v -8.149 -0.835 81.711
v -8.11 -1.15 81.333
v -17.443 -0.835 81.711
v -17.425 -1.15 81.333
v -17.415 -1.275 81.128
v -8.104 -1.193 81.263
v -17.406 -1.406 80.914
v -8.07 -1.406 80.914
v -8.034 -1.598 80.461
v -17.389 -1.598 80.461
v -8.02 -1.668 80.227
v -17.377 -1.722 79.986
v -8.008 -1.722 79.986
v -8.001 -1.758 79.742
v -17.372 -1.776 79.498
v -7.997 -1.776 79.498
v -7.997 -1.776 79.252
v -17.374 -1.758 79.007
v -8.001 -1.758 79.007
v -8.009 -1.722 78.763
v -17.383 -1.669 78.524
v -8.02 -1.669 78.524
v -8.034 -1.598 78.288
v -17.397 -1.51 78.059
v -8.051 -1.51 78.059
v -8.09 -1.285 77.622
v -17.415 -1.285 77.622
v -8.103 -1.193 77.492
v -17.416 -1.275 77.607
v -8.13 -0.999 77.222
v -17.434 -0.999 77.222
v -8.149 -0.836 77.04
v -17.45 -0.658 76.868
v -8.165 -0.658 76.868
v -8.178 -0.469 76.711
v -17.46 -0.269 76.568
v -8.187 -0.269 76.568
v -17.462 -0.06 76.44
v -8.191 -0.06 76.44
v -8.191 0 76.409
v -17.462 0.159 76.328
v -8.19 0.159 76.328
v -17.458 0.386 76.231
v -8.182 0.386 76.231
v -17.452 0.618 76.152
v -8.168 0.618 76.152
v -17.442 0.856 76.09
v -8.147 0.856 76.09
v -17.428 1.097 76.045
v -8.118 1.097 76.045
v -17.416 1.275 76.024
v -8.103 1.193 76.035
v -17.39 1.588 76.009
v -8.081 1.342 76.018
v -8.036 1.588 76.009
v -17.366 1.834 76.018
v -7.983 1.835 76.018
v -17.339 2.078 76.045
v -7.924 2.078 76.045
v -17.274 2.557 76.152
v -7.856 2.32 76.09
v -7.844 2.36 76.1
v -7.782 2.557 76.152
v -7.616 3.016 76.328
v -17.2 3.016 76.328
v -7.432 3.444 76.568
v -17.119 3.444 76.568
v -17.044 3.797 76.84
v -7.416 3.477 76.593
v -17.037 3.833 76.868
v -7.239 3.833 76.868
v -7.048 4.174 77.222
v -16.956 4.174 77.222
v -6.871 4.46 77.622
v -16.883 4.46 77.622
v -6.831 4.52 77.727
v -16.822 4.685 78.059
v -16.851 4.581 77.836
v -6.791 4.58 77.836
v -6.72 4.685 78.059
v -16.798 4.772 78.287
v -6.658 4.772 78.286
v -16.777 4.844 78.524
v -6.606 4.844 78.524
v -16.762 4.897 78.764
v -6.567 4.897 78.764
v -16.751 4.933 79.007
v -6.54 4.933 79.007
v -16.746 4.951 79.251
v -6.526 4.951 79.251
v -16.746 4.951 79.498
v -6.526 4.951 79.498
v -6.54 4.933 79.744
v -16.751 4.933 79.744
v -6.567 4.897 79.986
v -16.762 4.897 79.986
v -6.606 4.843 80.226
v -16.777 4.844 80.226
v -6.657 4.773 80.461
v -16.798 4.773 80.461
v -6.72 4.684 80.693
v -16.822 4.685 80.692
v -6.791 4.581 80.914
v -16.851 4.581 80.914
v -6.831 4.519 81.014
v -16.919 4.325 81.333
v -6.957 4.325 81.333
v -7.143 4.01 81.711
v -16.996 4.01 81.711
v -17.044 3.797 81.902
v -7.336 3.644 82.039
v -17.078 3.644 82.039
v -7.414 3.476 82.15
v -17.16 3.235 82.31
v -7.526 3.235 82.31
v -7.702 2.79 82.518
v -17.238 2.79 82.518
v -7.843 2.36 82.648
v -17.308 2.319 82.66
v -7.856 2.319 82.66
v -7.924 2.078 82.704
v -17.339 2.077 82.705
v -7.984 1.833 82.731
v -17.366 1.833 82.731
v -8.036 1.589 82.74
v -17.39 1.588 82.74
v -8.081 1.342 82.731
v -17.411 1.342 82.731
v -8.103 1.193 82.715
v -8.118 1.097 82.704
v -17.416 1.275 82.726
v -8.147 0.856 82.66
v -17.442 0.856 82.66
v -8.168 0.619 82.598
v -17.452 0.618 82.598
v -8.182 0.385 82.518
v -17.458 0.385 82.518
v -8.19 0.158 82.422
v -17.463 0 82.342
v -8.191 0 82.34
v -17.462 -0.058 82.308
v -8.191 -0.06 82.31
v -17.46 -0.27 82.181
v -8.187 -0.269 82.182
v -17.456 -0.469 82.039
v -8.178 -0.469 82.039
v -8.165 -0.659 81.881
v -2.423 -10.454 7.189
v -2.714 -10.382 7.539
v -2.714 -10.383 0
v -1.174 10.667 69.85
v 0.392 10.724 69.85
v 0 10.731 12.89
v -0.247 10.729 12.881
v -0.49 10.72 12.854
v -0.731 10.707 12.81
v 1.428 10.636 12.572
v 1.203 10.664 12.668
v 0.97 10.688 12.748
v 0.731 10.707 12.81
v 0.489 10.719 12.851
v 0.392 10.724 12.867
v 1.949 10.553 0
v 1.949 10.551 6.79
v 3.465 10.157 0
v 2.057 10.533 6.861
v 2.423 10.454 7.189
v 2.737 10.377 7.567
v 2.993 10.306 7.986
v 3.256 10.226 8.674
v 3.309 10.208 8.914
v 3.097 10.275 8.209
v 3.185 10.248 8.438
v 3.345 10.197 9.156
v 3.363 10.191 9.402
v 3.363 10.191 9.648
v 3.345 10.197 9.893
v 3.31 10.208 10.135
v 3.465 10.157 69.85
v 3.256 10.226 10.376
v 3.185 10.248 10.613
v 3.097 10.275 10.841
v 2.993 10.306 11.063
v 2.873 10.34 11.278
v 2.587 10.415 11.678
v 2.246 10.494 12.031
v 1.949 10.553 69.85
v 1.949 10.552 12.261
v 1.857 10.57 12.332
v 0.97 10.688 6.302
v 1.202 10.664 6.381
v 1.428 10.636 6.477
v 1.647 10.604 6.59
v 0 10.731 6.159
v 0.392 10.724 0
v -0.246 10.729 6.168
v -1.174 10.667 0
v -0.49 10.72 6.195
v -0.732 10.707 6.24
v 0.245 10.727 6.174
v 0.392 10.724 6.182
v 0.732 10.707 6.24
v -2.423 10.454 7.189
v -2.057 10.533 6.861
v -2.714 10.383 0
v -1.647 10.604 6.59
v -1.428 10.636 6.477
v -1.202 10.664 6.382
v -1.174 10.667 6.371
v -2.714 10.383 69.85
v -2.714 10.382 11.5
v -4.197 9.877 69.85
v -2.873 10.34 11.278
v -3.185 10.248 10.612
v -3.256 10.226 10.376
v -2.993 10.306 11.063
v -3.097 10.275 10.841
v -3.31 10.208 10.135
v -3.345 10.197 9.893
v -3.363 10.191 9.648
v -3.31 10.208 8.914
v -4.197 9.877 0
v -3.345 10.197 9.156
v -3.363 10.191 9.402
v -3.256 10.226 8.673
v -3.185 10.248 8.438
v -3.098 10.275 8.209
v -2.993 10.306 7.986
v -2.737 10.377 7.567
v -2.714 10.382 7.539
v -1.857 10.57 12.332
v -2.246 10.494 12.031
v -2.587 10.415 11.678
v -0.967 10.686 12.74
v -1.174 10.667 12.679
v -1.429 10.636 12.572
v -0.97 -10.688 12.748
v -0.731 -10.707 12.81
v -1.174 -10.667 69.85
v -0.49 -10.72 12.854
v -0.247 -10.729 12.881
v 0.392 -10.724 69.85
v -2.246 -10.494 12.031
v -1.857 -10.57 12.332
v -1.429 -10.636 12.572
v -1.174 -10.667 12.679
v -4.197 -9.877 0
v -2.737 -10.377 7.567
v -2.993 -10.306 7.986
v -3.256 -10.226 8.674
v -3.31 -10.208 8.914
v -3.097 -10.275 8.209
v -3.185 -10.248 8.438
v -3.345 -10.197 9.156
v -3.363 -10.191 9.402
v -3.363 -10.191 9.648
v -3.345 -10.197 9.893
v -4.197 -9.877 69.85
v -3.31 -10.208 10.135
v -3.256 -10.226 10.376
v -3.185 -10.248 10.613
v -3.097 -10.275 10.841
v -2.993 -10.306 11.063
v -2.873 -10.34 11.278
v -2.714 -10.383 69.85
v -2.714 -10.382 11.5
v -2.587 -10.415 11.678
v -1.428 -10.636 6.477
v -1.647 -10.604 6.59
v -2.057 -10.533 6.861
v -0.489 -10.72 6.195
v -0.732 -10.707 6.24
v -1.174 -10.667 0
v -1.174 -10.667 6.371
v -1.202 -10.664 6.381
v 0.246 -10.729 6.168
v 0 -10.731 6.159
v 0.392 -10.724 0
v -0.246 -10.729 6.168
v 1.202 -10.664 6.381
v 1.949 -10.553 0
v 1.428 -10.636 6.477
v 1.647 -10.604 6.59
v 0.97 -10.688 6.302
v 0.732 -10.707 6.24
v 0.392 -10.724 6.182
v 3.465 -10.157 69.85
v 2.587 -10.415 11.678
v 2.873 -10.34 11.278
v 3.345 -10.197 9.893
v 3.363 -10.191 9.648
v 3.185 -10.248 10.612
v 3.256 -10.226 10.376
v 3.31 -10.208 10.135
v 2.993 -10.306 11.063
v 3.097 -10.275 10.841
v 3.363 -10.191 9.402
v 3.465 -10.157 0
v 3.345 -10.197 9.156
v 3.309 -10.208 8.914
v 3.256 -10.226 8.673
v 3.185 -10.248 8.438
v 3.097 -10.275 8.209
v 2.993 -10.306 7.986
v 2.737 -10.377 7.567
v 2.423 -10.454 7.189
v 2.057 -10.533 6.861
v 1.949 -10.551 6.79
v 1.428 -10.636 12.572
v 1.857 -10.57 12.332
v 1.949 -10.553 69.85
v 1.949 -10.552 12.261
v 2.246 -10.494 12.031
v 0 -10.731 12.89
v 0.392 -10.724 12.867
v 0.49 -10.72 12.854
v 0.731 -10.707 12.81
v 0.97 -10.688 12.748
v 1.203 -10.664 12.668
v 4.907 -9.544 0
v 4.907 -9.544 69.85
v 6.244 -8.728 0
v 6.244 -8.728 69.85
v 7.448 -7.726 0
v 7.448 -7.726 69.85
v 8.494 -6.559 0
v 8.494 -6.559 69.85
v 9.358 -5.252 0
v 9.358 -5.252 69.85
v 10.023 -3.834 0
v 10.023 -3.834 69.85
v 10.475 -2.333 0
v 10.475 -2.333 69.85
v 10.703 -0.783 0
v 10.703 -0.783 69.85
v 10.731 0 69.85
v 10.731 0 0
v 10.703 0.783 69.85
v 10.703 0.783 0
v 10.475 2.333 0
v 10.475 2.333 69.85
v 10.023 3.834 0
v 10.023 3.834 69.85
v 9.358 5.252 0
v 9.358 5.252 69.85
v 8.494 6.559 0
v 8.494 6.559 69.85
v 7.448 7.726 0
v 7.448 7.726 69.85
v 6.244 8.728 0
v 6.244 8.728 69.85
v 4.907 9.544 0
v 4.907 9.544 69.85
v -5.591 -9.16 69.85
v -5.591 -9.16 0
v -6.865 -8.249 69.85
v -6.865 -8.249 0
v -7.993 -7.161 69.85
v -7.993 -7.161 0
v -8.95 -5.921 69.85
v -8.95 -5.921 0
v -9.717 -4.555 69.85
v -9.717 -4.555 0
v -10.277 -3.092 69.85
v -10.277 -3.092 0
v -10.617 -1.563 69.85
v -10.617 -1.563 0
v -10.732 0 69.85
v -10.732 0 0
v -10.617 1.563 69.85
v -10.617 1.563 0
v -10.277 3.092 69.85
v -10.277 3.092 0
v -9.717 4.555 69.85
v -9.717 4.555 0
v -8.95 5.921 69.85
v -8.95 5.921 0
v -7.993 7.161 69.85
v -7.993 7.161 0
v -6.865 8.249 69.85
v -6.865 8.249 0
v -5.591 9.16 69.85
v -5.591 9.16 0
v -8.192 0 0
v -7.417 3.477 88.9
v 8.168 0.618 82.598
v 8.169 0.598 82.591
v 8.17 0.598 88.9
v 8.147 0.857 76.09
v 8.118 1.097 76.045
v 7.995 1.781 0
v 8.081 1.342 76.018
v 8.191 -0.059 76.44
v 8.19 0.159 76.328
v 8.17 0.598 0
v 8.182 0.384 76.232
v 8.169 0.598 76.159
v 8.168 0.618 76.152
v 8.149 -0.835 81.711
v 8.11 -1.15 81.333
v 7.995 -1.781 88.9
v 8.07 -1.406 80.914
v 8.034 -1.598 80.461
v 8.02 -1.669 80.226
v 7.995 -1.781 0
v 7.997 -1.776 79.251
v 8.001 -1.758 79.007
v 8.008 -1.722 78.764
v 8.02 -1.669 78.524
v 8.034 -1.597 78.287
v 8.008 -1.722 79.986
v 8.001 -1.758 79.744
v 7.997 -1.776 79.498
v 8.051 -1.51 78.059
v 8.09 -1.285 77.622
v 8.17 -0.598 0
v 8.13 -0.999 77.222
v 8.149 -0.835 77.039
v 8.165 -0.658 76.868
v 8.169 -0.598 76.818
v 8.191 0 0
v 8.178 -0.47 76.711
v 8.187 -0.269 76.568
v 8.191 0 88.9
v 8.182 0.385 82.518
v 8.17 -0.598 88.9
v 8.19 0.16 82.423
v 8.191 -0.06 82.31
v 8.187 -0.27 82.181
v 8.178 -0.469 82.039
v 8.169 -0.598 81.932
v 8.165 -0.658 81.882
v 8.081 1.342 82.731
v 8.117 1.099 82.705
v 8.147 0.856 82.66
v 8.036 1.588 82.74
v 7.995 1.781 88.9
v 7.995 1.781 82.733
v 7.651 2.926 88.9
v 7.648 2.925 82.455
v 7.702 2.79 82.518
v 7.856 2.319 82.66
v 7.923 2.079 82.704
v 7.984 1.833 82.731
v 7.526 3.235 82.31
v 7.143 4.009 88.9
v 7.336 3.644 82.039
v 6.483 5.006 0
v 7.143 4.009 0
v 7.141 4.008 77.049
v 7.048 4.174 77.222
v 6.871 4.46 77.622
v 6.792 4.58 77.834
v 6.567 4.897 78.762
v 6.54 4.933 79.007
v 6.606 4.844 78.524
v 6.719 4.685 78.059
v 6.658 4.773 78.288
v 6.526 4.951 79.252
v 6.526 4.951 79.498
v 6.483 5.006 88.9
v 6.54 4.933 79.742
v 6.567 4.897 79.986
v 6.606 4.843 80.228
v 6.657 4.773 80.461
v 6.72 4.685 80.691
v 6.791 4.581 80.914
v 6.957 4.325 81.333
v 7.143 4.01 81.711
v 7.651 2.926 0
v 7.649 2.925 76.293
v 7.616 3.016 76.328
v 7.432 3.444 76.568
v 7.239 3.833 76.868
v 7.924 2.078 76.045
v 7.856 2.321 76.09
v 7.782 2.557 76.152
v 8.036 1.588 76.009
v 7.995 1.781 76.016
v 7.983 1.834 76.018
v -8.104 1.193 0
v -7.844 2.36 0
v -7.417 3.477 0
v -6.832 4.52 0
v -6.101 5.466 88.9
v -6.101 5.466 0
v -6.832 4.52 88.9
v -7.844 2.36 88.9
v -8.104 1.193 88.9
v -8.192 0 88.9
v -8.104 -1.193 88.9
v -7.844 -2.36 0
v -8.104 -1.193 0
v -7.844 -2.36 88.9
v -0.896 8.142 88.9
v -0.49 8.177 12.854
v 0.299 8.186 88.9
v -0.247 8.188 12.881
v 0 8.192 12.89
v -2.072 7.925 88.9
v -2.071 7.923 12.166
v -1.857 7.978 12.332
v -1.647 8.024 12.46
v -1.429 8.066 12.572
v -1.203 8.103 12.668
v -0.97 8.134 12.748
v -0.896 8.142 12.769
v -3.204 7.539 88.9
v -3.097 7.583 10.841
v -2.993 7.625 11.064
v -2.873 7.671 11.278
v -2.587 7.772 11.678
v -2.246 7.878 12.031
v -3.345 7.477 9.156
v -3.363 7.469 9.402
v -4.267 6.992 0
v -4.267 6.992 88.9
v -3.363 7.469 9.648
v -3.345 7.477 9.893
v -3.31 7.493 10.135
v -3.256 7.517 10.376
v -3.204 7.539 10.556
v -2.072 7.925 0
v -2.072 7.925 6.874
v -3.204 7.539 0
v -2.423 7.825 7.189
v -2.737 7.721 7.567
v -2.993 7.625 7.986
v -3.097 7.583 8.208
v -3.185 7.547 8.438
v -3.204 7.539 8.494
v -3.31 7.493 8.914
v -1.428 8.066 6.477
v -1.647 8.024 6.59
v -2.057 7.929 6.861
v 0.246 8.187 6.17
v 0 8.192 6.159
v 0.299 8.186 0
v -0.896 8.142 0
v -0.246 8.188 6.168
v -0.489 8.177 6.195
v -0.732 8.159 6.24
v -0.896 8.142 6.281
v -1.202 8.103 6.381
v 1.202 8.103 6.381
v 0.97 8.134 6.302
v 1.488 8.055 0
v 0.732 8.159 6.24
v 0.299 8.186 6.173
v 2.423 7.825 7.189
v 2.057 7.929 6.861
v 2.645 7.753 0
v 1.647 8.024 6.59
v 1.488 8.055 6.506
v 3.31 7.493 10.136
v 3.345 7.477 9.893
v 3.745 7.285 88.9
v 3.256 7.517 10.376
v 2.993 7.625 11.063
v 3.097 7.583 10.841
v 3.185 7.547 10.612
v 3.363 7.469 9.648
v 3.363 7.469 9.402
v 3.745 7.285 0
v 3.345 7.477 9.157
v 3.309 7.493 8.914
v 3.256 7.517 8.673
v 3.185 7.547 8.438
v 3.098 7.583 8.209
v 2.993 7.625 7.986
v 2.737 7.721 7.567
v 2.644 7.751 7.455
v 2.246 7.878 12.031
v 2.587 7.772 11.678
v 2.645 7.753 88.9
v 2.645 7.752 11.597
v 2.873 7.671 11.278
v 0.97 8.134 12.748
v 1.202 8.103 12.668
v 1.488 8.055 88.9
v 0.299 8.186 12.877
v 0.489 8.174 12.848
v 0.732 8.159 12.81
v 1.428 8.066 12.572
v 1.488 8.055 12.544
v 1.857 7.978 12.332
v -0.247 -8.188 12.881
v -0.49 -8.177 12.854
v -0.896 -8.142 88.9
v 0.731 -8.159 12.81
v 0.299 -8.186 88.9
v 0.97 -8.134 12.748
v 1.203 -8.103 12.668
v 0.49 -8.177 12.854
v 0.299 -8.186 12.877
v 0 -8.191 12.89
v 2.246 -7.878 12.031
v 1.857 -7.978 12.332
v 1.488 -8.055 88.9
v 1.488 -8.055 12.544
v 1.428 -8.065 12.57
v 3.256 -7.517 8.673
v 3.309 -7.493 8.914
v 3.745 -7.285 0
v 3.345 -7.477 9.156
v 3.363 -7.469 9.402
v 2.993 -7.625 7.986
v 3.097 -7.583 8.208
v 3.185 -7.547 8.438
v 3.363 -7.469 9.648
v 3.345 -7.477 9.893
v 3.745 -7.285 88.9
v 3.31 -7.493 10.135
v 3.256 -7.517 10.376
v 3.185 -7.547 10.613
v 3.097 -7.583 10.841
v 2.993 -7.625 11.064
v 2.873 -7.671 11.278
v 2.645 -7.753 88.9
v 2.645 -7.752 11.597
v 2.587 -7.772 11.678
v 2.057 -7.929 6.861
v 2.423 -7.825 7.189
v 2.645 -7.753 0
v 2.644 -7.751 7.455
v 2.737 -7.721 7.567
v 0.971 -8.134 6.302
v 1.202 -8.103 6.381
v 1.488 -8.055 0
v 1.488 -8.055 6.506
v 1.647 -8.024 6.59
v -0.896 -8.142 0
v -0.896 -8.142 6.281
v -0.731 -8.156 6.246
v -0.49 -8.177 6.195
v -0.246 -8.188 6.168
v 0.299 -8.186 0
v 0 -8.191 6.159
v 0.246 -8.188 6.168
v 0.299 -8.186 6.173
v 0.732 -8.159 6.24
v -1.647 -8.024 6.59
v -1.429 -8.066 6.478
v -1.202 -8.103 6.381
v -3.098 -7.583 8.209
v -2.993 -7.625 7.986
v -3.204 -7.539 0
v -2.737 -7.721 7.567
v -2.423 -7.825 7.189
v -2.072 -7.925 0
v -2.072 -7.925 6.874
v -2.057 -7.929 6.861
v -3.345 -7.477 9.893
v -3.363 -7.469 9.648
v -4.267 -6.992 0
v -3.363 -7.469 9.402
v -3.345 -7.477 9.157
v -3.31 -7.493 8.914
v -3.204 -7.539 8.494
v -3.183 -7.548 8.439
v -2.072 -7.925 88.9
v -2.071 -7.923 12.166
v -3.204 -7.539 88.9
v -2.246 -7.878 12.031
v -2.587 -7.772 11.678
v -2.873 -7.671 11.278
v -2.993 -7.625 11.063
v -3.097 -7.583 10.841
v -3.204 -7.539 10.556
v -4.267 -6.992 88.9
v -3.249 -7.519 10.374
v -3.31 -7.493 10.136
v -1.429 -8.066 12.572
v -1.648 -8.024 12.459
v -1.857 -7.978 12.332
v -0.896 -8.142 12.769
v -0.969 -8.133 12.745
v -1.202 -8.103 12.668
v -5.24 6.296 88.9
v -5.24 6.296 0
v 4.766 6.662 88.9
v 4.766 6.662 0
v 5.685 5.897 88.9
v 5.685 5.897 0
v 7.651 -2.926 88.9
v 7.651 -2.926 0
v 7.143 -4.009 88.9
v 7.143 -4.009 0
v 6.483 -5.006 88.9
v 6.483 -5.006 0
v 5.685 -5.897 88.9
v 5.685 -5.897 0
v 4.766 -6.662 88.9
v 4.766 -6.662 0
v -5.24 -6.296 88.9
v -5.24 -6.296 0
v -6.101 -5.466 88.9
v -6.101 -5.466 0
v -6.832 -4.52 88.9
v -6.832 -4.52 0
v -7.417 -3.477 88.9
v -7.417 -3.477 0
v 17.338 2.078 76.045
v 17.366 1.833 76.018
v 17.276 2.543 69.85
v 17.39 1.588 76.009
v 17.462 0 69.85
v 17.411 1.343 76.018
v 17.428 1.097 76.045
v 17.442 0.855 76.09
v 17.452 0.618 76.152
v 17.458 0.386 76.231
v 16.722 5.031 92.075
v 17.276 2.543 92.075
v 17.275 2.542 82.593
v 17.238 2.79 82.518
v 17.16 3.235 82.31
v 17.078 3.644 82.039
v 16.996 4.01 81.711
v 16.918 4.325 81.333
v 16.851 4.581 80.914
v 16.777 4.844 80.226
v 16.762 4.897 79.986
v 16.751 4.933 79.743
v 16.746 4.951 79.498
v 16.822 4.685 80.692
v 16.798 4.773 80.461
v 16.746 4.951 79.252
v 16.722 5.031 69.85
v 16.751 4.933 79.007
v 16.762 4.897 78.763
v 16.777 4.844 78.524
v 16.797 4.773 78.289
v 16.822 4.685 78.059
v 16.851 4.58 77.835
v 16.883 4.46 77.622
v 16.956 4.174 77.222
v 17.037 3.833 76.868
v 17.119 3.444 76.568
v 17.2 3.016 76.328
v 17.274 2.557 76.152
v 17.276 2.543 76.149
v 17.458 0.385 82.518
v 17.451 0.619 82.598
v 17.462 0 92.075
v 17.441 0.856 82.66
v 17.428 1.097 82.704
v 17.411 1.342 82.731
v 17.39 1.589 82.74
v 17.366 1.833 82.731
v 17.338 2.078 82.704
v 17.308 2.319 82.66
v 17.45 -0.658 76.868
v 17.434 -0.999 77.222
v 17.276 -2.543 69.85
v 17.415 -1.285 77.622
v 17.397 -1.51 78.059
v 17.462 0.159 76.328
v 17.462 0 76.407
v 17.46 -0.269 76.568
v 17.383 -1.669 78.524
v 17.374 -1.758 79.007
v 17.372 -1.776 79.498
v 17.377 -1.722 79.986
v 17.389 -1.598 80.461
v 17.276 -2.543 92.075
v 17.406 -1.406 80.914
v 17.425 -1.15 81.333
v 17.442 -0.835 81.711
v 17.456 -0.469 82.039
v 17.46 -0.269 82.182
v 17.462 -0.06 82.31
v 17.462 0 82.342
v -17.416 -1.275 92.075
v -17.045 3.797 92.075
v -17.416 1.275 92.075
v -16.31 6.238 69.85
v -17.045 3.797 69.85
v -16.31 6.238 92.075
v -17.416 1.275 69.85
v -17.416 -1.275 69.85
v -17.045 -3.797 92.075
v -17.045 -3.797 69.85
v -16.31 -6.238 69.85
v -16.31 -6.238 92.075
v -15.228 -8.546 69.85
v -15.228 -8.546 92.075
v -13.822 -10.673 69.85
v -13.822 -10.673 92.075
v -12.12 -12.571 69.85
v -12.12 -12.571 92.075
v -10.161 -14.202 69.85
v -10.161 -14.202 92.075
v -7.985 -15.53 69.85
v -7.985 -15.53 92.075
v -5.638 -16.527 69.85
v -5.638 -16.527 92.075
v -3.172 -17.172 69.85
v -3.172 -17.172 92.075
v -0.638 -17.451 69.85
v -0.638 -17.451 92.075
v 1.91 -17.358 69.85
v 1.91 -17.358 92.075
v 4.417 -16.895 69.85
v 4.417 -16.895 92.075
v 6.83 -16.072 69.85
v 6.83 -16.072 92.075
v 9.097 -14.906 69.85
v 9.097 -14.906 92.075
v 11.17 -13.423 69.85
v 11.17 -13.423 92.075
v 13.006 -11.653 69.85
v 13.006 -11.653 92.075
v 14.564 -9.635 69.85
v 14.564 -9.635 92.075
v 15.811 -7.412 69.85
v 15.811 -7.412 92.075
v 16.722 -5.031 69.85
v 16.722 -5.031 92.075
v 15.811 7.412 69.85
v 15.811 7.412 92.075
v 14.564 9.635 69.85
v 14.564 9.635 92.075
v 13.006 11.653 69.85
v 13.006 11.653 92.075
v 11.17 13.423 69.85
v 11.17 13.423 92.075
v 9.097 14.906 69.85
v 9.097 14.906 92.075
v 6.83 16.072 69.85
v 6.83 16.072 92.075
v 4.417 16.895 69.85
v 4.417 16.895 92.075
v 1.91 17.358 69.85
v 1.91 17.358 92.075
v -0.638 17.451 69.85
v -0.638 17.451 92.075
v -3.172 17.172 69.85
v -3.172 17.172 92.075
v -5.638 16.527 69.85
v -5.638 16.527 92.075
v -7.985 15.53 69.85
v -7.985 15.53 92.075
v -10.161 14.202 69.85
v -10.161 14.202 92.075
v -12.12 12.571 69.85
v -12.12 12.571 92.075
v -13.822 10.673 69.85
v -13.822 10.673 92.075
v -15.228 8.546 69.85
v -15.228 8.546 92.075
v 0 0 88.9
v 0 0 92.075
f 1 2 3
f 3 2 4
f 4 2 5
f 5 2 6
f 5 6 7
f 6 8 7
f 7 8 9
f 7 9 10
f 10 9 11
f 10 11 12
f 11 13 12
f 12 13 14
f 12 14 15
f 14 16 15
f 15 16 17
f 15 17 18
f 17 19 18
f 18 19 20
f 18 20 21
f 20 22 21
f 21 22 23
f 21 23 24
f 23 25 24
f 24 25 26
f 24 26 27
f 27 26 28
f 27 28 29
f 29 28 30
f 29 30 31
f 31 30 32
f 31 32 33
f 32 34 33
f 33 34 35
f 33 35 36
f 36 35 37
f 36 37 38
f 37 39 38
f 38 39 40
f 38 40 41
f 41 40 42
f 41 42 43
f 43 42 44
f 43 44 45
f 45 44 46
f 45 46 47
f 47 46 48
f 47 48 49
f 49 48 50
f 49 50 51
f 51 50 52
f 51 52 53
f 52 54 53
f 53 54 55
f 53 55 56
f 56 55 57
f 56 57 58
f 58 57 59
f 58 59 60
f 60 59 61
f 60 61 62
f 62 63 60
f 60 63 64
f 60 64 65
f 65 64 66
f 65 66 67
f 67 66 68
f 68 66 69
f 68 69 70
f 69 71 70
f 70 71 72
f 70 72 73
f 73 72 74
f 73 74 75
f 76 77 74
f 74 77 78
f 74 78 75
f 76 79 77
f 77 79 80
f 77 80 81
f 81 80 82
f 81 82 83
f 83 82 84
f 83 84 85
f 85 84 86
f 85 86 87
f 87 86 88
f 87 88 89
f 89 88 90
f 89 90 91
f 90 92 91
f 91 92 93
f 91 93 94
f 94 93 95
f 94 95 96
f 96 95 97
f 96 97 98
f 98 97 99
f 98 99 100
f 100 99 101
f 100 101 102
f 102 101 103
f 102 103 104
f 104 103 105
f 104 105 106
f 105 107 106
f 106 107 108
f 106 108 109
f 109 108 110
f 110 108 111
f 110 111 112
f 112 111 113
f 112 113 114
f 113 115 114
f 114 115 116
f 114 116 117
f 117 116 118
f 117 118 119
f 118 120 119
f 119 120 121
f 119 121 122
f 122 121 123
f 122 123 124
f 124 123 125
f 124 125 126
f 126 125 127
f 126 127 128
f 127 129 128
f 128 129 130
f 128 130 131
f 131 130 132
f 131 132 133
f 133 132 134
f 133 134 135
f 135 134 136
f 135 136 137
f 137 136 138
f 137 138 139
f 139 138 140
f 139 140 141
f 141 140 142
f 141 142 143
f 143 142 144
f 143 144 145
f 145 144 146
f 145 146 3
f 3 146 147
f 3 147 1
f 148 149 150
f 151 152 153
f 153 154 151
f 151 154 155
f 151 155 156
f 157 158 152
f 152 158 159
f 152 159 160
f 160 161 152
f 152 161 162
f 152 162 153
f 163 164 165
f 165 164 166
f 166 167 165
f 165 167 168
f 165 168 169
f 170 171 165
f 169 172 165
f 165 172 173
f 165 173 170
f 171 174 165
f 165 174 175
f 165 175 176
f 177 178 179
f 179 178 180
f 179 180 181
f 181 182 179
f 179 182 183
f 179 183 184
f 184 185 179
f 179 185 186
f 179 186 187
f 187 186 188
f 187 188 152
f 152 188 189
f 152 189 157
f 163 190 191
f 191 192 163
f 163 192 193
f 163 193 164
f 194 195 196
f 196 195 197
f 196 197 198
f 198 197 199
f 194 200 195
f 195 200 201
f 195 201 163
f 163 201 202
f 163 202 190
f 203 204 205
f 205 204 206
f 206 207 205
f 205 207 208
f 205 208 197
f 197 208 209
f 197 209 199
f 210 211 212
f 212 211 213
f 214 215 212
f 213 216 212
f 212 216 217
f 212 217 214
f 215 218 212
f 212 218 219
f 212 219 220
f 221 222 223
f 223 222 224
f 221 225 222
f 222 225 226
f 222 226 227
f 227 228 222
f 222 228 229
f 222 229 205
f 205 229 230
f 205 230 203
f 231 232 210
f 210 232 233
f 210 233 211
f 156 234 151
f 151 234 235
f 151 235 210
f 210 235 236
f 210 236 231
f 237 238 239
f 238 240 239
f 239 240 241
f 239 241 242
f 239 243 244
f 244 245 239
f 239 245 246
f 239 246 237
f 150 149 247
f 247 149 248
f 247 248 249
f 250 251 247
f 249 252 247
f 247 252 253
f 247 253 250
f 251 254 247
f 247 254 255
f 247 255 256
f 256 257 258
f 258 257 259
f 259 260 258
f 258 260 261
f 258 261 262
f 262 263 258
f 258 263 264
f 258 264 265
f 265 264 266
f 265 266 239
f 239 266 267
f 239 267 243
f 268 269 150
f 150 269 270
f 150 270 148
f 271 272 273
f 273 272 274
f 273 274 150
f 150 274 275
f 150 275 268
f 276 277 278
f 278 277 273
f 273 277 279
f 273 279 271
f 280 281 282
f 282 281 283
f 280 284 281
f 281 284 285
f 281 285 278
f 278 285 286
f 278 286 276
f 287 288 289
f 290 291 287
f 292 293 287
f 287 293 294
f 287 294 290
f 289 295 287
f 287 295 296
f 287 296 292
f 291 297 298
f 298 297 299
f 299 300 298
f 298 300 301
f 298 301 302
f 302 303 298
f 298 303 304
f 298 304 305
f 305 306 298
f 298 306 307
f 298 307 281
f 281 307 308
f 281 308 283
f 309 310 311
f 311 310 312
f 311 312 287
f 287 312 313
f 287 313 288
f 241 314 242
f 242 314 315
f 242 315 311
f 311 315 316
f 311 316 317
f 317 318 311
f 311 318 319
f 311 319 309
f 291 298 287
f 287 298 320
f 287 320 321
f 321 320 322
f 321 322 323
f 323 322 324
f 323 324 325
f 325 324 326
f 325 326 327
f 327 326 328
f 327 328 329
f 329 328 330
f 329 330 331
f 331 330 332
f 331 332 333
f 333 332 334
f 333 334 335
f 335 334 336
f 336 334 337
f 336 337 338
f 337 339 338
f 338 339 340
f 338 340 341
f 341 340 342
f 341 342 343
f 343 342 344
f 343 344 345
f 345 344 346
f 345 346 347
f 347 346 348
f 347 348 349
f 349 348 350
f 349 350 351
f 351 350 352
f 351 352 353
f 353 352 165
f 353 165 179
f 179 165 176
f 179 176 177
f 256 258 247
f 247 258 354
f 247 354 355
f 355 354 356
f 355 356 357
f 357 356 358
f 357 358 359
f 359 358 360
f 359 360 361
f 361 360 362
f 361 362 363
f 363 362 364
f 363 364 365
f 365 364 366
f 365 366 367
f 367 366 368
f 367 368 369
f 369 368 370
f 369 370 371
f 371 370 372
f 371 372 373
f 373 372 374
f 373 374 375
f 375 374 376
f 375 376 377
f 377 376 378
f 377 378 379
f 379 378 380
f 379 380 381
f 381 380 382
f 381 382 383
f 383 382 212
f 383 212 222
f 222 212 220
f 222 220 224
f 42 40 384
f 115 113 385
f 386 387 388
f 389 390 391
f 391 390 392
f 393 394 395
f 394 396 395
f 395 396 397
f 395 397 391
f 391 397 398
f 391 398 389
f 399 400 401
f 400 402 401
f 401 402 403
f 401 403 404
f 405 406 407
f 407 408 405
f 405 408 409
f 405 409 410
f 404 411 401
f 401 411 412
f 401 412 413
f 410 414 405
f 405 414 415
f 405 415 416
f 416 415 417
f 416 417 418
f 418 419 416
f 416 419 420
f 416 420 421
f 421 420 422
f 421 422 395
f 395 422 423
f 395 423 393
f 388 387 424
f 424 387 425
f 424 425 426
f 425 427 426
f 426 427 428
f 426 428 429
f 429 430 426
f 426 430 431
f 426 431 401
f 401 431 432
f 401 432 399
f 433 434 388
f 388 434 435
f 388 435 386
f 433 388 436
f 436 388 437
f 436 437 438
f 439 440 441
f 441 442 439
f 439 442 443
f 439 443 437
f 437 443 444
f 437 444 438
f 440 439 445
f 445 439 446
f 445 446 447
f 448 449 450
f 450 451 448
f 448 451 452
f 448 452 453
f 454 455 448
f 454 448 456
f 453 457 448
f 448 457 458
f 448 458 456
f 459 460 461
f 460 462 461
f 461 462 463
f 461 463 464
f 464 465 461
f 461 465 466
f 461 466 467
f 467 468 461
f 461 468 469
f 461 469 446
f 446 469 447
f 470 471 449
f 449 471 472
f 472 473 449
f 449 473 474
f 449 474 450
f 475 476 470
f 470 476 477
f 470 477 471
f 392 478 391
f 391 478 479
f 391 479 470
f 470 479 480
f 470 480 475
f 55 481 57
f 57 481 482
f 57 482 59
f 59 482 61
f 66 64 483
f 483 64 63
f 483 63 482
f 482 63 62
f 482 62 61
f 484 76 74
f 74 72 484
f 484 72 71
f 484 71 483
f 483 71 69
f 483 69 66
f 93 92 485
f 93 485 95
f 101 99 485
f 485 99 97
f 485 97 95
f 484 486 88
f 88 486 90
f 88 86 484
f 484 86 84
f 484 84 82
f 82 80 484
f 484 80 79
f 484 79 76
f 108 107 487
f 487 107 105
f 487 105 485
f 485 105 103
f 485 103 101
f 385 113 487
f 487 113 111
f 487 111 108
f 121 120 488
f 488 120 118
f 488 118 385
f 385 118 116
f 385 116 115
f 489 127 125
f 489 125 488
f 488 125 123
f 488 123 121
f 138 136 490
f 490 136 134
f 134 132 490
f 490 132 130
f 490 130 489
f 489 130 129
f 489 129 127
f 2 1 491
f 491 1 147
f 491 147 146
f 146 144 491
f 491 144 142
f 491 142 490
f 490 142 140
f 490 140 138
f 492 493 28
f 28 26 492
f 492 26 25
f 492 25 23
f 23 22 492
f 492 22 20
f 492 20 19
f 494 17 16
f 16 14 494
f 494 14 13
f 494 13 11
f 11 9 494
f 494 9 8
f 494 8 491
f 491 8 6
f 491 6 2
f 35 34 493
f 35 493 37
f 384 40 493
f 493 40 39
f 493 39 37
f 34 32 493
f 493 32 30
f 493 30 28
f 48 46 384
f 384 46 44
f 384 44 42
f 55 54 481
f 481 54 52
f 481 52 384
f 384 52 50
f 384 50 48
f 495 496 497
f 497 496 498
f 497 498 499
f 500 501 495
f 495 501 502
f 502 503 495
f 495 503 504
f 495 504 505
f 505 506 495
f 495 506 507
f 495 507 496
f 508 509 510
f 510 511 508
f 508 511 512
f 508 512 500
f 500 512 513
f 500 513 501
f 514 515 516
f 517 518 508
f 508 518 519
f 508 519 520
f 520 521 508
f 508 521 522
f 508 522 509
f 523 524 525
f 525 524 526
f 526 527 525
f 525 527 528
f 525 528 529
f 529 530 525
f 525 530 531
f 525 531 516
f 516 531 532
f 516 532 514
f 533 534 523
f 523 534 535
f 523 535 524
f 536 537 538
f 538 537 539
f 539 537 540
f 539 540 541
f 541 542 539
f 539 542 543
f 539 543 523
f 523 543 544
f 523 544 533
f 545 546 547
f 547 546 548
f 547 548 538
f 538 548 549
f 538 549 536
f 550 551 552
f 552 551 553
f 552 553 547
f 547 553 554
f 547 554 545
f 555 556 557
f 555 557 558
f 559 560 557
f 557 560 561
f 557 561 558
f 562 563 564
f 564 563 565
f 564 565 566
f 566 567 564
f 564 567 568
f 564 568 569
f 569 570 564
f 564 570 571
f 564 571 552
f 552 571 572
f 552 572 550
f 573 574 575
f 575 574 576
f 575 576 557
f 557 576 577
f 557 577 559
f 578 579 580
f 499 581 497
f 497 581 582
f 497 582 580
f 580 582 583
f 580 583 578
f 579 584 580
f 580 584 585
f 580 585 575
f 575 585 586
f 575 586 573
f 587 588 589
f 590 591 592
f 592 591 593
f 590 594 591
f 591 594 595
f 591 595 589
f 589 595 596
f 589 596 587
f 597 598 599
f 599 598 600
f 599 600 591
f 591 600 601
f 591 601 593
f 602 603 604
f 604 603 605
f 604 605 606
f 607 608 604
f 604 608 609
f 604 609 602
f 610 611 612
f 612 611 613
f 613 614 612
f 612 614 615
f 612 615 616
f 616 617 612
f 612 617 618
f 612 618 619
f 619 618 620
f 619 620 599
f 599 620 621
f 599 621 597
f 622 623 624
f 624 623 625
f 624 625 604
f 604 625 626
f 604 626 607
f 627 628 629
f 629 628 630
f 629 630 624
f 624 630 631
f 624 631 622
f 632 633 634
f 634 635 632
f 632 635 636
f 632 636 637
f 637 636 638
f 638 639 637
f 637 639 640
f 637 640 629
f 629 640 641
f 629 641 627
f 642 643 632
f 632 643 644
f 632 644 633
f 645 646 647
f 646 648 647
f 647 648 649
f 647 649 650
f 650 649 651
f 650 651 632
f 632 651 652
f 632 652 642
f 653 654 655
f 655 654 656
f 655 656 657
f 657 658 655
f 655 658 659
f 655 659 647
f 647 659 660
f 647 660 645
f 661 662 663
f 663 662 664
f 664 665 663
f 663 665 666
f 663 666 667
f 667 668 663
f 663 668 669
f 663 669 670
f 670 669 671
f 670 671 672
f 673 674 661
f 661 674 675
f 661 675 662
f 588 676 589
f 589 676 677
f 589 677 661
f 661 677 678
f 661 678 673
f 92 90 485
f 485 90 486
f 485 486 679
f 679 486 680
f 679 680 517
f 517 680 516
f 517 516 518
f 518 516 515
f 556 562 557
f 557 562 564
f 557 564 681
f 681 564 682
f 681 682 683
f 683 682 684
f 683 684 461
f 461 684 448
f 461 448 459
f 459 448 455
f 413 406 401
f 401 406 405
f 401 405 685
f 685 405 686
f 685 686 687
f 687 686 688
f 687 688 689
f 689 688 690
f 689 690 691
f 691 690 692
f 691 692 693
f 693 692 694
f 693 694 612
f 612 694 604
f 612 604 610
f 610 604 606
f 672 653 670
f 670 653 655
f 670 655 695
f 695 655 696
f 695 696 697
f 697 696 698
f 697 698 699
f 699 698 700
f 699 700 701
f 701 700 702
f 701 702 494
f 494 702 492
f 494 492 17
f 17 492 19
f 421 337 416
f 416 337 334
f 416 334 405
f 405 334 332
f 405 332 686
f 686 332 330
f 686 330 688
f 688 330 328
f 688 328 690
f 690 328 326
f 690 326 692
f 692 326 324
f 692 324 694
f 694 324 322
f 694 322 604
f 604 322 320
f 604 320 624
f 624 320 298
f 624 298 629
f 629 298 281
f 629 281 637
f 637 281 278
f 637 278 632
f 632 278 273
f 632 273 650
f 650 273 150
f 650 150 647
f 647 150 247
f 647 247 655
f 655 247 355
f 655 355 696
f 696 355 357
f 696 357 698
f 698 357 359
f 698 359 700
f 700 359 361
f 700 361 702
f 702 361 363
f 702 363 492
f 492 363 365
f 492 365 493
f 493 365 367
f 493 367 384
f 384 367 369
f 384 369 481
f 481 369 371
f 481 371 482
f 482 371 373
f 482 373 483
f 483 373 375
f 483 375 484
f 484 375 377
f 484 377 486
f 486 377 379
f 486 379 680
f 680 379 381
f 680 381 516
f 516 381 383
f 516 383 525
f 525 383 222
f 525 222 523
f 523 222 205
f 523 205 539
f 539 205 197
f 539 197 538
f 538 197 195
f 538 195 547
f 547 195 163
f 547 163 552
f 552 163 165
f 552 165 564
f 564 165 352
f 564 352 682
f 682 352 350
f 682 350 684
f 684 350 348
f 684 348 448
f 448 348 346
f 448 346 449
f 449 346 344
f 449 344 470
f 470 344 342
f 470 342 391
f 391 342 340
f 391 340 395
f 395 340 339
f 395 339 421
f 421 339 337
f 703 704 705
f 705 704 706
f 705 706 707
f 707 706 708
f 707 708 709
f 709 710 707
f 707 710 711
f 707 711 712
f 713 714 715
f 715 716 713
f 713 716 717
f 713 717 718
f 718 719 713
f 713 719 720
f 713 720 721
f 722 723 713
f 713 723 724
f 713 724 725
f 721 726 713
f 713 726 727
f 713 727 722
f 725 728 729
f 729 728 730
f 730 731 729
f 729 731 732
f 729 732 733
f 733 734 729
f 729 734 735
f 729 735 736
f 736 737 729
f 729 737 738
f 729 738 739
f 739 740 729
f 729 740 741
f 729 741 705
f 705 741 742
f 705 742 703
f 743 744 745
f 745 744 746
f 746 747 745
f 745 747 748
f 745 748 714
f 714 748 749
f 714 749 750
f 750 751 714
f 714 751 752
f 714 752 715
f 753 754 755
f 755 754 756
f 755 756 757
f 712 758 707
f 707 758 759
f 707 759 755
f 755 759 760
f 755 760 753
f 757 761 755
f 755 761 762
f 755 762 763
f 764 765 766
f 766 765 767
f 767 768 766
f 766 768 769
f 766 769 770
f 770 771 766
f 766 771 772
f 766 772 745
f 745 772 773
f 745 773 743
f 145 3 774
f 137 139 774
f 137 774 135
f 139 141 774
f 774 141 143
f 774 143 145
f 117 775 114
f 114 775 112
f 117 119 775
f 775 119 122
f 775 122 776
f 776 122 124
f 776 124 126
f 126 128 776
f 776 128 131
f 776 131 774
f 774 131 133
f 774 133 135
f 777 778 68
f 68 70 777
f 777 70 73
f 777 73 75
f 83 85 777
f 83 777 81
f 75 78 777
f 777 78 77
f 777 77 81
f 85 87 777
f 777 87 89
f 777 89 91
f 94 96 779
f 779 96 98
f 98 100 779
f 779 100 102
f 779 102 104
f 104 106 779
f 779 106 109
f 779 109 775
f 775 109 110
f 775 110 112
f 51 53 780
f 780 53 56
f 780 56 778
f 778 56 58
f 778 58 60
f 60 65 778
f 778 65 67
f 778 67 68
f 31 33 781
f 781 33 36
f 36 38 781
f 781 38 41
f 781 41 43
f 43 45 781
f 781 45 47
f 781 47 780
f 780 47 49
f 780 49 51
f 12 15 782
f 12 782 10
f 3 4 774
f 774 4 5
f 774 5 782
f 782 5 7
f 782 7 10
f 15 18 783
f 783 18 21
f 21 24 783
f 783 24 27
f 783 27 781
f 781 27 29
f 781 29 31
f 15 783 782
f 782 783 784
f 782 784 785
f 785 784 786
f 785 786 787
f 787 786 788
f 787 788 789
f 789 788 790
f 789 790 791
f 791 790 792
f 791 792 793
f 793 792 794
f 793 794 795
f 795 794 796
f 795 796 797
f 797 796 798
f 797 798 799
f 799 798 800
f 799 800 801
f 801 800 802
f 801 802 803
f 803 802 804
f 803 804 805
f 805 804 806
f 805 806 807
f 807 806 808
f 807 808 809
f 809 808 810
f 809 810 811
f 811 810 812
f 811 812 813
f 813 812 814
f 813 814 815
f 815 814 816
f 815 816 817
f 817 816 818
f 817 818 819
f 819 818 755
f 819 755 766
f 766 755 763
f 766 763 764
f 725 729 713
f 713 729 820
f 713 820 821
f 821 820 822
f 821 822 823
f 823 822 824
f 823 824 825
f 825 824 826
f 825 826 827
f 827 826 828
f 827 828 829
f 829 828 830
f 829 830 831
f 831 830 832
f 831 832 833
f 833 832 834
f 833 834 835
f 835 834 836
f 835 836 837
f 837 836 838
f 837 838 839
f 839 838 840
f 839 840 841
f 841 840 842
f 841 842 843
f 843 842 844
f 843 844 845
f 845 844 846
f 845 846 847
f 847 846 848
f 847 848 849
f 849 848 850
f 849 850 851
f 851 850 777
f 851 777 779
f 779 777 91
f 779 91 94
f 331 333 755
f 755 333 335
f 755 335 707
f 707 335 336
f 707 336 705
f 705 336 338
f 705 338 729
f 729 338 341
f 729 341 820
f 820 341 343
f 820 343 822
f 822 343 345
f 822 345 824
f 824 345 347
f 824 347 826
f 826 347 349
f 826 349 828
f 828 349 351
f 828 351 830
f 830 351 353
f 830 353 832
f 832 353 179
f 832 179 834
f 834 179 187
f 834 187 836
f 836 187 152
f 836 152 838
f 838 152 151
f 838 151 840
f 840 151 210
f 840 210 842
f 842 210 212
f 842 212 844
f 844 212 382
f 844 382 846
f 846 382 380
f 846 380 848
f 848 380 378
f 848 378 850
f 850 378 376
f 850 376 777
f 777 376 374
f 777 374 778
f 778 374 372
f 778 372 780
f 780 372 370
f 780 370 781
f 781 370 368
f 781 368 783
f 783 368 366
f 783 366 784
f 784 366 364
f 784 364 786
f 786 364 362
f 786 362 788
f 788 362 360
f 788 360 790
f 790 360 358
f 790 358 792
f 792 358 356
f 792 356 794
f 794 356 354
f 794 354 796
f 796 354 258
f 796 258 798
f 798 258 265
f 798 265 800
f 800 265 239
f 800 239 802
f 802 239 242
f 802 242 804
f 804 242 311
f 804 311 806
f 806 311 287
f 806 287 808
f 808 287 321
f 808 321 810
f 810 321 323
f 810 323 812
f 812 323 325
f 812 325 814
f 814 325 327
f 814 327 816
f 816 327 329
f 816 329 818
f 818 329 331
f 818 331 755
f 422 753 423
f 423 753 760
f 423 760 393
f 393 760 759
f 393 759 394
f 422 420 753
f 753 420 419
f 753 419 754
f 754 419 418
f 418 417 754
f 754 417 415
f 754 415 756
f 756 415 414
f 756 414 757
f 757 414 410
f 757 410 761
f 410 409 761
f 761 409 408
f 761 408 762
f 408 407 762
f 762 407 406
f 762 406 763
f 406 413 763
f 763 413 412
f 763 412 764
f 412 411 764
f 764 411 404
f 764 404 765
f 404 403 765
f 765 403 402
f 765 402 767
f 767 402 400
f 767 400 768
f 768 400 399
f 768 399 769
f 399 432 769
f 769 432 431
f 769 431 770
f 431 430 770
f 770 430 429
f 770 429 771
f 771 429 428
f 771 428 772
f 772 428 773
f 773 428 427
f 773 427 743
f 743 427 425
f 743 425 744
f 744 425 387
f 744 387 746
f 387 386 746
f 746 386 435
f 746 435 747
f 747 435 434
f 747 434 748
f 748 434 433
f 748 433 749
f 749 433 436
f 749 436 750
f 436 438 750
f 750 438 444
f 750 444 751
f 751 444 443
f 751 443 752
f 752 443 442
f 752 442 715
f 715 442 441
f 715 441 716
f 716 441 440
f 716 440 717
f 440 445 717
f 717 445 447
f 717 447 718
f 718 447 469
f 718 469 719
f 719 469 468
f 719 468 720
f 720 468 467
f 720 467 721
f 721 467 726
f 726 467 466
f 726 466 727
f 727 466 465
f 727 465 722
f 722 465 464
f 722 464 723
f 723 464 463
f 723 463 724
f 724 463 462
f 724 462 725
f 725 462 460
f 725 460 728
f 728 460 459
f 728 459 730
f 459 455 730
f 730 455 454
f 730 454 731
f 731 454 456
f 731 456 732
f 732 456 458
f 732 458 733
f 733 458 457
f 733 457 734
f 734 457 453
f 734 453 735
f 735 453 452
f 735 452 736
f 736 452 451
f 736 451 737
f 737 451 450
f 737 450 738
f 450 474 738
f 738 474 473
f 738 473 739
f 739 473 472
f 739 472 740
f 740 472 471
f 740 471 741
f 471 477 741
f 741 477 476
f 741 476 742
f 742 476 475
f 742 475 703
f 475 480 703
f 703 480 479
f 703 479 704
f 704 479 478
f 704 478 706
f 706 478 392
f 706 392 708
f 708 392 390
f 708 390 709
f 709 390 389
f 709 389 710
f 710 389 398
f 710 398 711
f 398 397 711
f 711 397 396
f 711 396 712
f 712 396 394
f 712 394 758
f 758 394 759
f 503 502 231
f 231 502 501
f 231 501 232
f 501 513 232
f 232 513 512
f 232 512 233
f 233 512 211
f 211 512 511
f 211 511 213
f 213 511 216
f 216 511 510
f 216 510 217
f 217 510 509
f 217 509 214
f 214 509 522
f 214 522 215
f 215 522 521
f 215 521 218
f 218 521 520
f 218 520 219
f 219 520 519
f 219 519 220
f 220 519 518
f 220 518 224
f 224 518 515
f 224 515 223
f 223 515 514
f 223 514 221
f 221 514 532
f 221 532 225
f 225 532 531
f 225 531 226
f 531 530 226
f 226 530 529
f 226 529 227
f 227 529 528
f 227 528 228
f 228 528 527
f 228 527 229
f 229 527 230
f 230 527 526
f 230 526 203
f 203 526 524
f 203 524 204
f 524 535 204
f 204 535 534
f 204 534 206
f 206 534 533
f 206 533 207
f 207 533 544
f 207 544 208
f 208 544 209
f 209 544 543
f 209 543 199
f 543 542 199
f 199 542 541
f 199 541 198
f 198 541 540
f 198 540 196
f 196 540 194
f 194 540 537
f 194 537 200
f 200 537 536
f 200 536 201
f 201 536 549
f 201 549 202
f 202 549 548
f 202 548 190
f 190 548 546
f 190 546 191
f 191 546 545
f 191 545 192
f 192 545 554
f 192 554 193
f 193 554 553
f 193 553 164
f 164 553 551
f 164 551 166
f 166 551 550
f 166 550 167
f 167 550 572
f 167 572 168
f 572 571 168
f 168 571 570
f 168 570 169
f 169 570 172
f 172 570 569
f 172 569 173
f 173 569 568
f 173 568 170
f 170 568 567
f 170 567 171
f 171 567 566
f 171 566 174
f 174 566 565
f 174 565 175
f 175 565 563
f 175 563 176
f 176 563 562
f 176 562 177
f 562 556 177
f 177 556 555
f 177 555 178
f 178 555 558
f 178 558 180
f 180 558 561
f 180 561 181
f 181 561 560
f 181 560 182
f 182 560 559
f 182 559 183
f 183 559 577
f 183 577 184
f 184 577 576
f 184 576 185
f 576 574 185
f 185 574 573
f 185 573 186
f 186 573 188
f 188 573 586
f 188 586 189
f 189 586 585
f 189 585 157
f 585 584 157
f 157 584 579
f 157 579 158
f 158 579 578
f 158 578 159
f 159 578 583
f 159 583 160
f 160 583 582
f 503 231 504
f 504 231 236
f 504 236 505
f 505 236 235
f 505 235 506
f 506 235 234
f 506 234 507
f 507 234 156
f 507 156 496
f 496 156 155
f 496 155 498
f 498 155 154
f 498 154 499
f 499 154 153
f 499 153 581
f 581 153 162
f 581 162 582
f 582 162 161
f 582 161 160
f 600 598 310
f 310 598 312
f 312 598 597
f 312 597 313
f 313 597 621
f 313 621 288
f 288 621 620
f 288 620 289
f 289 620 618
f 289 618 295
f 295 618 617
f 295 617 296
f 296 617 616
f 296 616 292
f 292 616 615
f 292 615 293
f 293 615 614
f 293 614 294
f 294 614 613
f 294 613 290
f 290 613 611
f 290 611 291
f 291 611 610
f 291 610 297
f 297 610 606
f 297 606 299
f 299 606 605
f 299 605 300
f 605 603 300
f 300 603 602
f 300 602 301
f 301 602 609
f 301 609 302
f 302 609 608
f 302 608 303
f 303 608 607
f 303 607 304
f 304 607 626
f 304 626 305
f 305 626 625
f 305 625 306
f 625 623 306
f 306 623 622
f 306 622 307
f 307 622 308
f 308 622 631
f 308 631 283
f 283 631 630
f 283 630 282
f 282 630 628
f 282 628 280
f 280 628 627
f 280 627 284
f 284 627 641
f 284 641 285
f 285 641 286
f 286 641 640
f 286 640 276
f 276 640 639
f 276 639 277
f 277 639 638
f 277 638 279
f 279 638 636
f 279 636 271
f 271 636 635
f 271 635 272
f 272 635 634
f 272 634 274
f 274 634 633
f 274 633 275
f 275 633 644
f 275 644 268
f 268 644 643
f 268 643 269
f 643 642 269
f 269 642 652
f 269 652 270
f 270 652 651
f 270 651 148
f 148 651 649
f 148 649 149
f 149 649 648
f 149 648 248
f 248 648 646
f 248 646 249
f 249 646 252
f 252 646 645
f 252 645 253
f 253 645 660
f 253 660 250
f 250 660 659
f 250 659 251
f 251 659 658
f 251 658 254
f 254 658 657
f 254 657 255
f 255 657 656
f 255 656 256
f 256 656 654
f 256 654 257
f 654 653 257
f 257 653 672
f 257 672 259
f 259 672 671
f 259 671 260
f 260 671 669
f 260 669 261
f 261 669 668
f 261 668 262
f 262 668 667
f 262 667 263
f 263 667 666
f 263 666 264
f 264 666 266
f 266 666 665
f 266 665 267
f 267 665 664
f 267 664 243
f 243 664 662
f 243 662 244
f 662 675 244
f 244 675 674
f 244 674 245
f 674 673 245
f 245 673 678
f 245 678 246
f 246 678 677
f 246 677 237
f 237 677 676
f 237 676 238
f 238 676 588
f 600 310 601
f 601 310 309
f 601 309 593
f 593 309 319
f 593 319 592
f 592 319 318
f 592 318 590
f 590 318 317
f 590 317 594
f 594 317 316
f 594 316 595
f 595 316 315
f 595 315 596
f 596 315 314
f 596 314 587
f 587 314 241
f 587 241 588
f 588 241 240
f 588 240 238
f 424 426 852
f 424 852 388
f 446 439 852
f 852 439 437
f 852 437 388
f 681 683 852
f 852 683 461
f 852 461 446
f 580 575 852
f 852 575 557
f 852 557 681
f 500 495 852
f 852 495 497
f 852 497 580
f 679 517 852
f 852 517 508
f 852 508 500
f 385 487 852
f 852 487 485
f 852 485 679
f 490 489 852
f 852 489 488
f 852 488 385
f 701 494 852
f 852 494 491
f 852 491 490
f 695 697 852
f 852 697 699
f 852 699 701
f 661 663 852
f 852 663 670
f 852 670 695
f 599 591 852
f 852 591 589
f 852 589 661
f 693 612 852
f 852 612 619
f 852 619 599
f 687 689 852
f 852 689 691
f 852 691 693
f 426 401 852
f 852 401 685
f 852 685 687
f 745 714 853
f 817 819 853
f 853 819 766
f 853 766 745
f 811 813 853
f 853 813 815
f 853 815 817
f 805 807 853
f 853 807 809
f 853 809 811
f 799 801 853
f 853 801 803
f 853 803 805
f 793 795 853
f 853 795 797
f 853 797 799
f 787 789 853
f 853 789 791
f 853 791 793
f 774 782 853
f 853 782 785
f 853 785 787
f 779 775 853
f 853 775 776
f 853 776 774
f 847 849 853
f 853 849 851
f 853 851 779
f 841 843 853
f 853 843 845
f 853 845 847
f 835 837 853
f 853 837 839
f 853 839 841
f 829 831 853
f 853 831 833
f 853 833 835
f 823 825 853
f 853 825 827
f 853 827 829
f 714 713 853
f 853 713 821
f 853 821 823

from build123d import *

# Parameters (mm, degrees)
SKETCH1_R               = 10.7315
SKETCH1_R_2             = 8.1915
BOSS_EXTRUDE1_DEPTH     = 88.9
SKETCH4_R               = 17.4625
BOSS_EXTRUDE2_DEPTH     = 19.05
CUT_EXTRUDE1_DEPTH      = 93.266395901
CUT_EXTRUDE1_DEPTH_BACK = 93.266395901
SKETCH5_R               = 3.3655
CUT_EXTRUDE2_DEPTH      = 93.266396035
CUT_EXTRUDE2_DEPTH_BACK = 93.266396035
SKETCH7_R               = 3.3655
SKETCH8_R               = 8.1915
CUT_EXTRUDE3_DEPTH      = 93.266396035
BOSS_EXTRUDE3_START     = 3.175
SKETCH9_R               = 17.4625
BOSS_EXTRUDE3_DEPTH     = 3.175


with BuildPart() as part:
    # Sketch1 → Boss-Extrude1 (new body)
    with BuildSketch(Plane.XY):
        Circle(SKETCH1_R)
        Circle(SKETCH1_R_2, mode=Mode.SUBTRACT)
    extrude(amount=BOSS_EXTRUDE1_DEPTH)

    # Sketch4 → Boss-Extrude2 (add)
    with BuildSketch(Plane.XY.offset(88.9)):
        Circle(SKETCH4_R)
    extrude(amount=-BOSS_EXTRUDE2_DEPTH)

    # Sketch5 → Cut-Extrude1 (cut, two sides: drawn at the far end of the back side and taken through both)
    with BuildSketch(Plane(origin=(0, 0, 0), x_dir=(0, 0, -1), z_dir=(1, 0, 0)).offset(-CUT_EXTRUDE1_DEPTH_BACK)):
        with Locations(Location((-79.375, 1.5875, 0), (0, 0, 331.855418691))):
            Circle(SKETCH5_R)
    extrude(amount=CUT_EXTRUDE1_DEPTH + CUT_EXTRUDE1_DEPTH_BACK, mode=Mode.SUBTRACT)

    # Sketch7 → Cut-Extrude2 (cut, two sides: drawn at the far end of the back side and taken through both)
    with BuildSketch(Plane(origin=(0, 0, 0), x_dir=(1, 0, 0), z_dir=(0, 1, 0)).offset(-CUT_EXTRUDE2_DEPTH_BACK)):
        with Locations(Location((0, -9.525, 0), (0, 0, 270))):
            Circle(SKETCH7_R)
    extrude(amount=CUT_EXTRUDE2_DEPTH + CUT_EXTRUDE2_DEPTH_BACK, mode=Mode.SUBTRACT)

    # Sketch8 → Cut-Extrude3 (cut, through all)
    with BuildSketch(Plane.XY.offset(88.9)):
        Circle(SKETCH8_R)
    extrude(amount=-CUT_EXTRUDE3_DEPTH, mode=Mode.SUBTRACT)

    # Sketch9 → Boss-Extrude3 (add)
    with BuildSketch(Plane.XY.offset(88.9).offset(BOSS_EXTRUDE3_START)):
        Circle(SKETCH9_R)
    extrude(amount=-BOSS_EXTRUDE3_DEPTH)


solid = part.part
